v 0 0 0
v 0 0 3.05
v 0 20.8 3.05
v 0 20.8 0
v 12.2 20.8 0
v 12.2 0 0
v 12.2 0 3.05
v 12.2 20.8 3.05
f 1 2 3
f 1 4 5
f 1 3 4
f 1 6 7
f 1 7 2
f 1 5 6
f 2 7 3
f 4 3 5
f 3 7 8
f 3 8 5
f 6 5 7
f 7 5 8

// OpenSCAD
/* Warning, this is a very basic generator with a lot of approximation 
input data : [FLATPACK, 8GB, 12.2x20.8x3.05mm, 32, , A, C04-21099A]
generated by com.zoubworld.electronics.cad.model3d.Basic
Date : Sun Feb 15 10:50:49 CET 2026
*/

//body
color("black")
translate([0,0,0])
cube([12.2,20.8,3.05], center=false);
